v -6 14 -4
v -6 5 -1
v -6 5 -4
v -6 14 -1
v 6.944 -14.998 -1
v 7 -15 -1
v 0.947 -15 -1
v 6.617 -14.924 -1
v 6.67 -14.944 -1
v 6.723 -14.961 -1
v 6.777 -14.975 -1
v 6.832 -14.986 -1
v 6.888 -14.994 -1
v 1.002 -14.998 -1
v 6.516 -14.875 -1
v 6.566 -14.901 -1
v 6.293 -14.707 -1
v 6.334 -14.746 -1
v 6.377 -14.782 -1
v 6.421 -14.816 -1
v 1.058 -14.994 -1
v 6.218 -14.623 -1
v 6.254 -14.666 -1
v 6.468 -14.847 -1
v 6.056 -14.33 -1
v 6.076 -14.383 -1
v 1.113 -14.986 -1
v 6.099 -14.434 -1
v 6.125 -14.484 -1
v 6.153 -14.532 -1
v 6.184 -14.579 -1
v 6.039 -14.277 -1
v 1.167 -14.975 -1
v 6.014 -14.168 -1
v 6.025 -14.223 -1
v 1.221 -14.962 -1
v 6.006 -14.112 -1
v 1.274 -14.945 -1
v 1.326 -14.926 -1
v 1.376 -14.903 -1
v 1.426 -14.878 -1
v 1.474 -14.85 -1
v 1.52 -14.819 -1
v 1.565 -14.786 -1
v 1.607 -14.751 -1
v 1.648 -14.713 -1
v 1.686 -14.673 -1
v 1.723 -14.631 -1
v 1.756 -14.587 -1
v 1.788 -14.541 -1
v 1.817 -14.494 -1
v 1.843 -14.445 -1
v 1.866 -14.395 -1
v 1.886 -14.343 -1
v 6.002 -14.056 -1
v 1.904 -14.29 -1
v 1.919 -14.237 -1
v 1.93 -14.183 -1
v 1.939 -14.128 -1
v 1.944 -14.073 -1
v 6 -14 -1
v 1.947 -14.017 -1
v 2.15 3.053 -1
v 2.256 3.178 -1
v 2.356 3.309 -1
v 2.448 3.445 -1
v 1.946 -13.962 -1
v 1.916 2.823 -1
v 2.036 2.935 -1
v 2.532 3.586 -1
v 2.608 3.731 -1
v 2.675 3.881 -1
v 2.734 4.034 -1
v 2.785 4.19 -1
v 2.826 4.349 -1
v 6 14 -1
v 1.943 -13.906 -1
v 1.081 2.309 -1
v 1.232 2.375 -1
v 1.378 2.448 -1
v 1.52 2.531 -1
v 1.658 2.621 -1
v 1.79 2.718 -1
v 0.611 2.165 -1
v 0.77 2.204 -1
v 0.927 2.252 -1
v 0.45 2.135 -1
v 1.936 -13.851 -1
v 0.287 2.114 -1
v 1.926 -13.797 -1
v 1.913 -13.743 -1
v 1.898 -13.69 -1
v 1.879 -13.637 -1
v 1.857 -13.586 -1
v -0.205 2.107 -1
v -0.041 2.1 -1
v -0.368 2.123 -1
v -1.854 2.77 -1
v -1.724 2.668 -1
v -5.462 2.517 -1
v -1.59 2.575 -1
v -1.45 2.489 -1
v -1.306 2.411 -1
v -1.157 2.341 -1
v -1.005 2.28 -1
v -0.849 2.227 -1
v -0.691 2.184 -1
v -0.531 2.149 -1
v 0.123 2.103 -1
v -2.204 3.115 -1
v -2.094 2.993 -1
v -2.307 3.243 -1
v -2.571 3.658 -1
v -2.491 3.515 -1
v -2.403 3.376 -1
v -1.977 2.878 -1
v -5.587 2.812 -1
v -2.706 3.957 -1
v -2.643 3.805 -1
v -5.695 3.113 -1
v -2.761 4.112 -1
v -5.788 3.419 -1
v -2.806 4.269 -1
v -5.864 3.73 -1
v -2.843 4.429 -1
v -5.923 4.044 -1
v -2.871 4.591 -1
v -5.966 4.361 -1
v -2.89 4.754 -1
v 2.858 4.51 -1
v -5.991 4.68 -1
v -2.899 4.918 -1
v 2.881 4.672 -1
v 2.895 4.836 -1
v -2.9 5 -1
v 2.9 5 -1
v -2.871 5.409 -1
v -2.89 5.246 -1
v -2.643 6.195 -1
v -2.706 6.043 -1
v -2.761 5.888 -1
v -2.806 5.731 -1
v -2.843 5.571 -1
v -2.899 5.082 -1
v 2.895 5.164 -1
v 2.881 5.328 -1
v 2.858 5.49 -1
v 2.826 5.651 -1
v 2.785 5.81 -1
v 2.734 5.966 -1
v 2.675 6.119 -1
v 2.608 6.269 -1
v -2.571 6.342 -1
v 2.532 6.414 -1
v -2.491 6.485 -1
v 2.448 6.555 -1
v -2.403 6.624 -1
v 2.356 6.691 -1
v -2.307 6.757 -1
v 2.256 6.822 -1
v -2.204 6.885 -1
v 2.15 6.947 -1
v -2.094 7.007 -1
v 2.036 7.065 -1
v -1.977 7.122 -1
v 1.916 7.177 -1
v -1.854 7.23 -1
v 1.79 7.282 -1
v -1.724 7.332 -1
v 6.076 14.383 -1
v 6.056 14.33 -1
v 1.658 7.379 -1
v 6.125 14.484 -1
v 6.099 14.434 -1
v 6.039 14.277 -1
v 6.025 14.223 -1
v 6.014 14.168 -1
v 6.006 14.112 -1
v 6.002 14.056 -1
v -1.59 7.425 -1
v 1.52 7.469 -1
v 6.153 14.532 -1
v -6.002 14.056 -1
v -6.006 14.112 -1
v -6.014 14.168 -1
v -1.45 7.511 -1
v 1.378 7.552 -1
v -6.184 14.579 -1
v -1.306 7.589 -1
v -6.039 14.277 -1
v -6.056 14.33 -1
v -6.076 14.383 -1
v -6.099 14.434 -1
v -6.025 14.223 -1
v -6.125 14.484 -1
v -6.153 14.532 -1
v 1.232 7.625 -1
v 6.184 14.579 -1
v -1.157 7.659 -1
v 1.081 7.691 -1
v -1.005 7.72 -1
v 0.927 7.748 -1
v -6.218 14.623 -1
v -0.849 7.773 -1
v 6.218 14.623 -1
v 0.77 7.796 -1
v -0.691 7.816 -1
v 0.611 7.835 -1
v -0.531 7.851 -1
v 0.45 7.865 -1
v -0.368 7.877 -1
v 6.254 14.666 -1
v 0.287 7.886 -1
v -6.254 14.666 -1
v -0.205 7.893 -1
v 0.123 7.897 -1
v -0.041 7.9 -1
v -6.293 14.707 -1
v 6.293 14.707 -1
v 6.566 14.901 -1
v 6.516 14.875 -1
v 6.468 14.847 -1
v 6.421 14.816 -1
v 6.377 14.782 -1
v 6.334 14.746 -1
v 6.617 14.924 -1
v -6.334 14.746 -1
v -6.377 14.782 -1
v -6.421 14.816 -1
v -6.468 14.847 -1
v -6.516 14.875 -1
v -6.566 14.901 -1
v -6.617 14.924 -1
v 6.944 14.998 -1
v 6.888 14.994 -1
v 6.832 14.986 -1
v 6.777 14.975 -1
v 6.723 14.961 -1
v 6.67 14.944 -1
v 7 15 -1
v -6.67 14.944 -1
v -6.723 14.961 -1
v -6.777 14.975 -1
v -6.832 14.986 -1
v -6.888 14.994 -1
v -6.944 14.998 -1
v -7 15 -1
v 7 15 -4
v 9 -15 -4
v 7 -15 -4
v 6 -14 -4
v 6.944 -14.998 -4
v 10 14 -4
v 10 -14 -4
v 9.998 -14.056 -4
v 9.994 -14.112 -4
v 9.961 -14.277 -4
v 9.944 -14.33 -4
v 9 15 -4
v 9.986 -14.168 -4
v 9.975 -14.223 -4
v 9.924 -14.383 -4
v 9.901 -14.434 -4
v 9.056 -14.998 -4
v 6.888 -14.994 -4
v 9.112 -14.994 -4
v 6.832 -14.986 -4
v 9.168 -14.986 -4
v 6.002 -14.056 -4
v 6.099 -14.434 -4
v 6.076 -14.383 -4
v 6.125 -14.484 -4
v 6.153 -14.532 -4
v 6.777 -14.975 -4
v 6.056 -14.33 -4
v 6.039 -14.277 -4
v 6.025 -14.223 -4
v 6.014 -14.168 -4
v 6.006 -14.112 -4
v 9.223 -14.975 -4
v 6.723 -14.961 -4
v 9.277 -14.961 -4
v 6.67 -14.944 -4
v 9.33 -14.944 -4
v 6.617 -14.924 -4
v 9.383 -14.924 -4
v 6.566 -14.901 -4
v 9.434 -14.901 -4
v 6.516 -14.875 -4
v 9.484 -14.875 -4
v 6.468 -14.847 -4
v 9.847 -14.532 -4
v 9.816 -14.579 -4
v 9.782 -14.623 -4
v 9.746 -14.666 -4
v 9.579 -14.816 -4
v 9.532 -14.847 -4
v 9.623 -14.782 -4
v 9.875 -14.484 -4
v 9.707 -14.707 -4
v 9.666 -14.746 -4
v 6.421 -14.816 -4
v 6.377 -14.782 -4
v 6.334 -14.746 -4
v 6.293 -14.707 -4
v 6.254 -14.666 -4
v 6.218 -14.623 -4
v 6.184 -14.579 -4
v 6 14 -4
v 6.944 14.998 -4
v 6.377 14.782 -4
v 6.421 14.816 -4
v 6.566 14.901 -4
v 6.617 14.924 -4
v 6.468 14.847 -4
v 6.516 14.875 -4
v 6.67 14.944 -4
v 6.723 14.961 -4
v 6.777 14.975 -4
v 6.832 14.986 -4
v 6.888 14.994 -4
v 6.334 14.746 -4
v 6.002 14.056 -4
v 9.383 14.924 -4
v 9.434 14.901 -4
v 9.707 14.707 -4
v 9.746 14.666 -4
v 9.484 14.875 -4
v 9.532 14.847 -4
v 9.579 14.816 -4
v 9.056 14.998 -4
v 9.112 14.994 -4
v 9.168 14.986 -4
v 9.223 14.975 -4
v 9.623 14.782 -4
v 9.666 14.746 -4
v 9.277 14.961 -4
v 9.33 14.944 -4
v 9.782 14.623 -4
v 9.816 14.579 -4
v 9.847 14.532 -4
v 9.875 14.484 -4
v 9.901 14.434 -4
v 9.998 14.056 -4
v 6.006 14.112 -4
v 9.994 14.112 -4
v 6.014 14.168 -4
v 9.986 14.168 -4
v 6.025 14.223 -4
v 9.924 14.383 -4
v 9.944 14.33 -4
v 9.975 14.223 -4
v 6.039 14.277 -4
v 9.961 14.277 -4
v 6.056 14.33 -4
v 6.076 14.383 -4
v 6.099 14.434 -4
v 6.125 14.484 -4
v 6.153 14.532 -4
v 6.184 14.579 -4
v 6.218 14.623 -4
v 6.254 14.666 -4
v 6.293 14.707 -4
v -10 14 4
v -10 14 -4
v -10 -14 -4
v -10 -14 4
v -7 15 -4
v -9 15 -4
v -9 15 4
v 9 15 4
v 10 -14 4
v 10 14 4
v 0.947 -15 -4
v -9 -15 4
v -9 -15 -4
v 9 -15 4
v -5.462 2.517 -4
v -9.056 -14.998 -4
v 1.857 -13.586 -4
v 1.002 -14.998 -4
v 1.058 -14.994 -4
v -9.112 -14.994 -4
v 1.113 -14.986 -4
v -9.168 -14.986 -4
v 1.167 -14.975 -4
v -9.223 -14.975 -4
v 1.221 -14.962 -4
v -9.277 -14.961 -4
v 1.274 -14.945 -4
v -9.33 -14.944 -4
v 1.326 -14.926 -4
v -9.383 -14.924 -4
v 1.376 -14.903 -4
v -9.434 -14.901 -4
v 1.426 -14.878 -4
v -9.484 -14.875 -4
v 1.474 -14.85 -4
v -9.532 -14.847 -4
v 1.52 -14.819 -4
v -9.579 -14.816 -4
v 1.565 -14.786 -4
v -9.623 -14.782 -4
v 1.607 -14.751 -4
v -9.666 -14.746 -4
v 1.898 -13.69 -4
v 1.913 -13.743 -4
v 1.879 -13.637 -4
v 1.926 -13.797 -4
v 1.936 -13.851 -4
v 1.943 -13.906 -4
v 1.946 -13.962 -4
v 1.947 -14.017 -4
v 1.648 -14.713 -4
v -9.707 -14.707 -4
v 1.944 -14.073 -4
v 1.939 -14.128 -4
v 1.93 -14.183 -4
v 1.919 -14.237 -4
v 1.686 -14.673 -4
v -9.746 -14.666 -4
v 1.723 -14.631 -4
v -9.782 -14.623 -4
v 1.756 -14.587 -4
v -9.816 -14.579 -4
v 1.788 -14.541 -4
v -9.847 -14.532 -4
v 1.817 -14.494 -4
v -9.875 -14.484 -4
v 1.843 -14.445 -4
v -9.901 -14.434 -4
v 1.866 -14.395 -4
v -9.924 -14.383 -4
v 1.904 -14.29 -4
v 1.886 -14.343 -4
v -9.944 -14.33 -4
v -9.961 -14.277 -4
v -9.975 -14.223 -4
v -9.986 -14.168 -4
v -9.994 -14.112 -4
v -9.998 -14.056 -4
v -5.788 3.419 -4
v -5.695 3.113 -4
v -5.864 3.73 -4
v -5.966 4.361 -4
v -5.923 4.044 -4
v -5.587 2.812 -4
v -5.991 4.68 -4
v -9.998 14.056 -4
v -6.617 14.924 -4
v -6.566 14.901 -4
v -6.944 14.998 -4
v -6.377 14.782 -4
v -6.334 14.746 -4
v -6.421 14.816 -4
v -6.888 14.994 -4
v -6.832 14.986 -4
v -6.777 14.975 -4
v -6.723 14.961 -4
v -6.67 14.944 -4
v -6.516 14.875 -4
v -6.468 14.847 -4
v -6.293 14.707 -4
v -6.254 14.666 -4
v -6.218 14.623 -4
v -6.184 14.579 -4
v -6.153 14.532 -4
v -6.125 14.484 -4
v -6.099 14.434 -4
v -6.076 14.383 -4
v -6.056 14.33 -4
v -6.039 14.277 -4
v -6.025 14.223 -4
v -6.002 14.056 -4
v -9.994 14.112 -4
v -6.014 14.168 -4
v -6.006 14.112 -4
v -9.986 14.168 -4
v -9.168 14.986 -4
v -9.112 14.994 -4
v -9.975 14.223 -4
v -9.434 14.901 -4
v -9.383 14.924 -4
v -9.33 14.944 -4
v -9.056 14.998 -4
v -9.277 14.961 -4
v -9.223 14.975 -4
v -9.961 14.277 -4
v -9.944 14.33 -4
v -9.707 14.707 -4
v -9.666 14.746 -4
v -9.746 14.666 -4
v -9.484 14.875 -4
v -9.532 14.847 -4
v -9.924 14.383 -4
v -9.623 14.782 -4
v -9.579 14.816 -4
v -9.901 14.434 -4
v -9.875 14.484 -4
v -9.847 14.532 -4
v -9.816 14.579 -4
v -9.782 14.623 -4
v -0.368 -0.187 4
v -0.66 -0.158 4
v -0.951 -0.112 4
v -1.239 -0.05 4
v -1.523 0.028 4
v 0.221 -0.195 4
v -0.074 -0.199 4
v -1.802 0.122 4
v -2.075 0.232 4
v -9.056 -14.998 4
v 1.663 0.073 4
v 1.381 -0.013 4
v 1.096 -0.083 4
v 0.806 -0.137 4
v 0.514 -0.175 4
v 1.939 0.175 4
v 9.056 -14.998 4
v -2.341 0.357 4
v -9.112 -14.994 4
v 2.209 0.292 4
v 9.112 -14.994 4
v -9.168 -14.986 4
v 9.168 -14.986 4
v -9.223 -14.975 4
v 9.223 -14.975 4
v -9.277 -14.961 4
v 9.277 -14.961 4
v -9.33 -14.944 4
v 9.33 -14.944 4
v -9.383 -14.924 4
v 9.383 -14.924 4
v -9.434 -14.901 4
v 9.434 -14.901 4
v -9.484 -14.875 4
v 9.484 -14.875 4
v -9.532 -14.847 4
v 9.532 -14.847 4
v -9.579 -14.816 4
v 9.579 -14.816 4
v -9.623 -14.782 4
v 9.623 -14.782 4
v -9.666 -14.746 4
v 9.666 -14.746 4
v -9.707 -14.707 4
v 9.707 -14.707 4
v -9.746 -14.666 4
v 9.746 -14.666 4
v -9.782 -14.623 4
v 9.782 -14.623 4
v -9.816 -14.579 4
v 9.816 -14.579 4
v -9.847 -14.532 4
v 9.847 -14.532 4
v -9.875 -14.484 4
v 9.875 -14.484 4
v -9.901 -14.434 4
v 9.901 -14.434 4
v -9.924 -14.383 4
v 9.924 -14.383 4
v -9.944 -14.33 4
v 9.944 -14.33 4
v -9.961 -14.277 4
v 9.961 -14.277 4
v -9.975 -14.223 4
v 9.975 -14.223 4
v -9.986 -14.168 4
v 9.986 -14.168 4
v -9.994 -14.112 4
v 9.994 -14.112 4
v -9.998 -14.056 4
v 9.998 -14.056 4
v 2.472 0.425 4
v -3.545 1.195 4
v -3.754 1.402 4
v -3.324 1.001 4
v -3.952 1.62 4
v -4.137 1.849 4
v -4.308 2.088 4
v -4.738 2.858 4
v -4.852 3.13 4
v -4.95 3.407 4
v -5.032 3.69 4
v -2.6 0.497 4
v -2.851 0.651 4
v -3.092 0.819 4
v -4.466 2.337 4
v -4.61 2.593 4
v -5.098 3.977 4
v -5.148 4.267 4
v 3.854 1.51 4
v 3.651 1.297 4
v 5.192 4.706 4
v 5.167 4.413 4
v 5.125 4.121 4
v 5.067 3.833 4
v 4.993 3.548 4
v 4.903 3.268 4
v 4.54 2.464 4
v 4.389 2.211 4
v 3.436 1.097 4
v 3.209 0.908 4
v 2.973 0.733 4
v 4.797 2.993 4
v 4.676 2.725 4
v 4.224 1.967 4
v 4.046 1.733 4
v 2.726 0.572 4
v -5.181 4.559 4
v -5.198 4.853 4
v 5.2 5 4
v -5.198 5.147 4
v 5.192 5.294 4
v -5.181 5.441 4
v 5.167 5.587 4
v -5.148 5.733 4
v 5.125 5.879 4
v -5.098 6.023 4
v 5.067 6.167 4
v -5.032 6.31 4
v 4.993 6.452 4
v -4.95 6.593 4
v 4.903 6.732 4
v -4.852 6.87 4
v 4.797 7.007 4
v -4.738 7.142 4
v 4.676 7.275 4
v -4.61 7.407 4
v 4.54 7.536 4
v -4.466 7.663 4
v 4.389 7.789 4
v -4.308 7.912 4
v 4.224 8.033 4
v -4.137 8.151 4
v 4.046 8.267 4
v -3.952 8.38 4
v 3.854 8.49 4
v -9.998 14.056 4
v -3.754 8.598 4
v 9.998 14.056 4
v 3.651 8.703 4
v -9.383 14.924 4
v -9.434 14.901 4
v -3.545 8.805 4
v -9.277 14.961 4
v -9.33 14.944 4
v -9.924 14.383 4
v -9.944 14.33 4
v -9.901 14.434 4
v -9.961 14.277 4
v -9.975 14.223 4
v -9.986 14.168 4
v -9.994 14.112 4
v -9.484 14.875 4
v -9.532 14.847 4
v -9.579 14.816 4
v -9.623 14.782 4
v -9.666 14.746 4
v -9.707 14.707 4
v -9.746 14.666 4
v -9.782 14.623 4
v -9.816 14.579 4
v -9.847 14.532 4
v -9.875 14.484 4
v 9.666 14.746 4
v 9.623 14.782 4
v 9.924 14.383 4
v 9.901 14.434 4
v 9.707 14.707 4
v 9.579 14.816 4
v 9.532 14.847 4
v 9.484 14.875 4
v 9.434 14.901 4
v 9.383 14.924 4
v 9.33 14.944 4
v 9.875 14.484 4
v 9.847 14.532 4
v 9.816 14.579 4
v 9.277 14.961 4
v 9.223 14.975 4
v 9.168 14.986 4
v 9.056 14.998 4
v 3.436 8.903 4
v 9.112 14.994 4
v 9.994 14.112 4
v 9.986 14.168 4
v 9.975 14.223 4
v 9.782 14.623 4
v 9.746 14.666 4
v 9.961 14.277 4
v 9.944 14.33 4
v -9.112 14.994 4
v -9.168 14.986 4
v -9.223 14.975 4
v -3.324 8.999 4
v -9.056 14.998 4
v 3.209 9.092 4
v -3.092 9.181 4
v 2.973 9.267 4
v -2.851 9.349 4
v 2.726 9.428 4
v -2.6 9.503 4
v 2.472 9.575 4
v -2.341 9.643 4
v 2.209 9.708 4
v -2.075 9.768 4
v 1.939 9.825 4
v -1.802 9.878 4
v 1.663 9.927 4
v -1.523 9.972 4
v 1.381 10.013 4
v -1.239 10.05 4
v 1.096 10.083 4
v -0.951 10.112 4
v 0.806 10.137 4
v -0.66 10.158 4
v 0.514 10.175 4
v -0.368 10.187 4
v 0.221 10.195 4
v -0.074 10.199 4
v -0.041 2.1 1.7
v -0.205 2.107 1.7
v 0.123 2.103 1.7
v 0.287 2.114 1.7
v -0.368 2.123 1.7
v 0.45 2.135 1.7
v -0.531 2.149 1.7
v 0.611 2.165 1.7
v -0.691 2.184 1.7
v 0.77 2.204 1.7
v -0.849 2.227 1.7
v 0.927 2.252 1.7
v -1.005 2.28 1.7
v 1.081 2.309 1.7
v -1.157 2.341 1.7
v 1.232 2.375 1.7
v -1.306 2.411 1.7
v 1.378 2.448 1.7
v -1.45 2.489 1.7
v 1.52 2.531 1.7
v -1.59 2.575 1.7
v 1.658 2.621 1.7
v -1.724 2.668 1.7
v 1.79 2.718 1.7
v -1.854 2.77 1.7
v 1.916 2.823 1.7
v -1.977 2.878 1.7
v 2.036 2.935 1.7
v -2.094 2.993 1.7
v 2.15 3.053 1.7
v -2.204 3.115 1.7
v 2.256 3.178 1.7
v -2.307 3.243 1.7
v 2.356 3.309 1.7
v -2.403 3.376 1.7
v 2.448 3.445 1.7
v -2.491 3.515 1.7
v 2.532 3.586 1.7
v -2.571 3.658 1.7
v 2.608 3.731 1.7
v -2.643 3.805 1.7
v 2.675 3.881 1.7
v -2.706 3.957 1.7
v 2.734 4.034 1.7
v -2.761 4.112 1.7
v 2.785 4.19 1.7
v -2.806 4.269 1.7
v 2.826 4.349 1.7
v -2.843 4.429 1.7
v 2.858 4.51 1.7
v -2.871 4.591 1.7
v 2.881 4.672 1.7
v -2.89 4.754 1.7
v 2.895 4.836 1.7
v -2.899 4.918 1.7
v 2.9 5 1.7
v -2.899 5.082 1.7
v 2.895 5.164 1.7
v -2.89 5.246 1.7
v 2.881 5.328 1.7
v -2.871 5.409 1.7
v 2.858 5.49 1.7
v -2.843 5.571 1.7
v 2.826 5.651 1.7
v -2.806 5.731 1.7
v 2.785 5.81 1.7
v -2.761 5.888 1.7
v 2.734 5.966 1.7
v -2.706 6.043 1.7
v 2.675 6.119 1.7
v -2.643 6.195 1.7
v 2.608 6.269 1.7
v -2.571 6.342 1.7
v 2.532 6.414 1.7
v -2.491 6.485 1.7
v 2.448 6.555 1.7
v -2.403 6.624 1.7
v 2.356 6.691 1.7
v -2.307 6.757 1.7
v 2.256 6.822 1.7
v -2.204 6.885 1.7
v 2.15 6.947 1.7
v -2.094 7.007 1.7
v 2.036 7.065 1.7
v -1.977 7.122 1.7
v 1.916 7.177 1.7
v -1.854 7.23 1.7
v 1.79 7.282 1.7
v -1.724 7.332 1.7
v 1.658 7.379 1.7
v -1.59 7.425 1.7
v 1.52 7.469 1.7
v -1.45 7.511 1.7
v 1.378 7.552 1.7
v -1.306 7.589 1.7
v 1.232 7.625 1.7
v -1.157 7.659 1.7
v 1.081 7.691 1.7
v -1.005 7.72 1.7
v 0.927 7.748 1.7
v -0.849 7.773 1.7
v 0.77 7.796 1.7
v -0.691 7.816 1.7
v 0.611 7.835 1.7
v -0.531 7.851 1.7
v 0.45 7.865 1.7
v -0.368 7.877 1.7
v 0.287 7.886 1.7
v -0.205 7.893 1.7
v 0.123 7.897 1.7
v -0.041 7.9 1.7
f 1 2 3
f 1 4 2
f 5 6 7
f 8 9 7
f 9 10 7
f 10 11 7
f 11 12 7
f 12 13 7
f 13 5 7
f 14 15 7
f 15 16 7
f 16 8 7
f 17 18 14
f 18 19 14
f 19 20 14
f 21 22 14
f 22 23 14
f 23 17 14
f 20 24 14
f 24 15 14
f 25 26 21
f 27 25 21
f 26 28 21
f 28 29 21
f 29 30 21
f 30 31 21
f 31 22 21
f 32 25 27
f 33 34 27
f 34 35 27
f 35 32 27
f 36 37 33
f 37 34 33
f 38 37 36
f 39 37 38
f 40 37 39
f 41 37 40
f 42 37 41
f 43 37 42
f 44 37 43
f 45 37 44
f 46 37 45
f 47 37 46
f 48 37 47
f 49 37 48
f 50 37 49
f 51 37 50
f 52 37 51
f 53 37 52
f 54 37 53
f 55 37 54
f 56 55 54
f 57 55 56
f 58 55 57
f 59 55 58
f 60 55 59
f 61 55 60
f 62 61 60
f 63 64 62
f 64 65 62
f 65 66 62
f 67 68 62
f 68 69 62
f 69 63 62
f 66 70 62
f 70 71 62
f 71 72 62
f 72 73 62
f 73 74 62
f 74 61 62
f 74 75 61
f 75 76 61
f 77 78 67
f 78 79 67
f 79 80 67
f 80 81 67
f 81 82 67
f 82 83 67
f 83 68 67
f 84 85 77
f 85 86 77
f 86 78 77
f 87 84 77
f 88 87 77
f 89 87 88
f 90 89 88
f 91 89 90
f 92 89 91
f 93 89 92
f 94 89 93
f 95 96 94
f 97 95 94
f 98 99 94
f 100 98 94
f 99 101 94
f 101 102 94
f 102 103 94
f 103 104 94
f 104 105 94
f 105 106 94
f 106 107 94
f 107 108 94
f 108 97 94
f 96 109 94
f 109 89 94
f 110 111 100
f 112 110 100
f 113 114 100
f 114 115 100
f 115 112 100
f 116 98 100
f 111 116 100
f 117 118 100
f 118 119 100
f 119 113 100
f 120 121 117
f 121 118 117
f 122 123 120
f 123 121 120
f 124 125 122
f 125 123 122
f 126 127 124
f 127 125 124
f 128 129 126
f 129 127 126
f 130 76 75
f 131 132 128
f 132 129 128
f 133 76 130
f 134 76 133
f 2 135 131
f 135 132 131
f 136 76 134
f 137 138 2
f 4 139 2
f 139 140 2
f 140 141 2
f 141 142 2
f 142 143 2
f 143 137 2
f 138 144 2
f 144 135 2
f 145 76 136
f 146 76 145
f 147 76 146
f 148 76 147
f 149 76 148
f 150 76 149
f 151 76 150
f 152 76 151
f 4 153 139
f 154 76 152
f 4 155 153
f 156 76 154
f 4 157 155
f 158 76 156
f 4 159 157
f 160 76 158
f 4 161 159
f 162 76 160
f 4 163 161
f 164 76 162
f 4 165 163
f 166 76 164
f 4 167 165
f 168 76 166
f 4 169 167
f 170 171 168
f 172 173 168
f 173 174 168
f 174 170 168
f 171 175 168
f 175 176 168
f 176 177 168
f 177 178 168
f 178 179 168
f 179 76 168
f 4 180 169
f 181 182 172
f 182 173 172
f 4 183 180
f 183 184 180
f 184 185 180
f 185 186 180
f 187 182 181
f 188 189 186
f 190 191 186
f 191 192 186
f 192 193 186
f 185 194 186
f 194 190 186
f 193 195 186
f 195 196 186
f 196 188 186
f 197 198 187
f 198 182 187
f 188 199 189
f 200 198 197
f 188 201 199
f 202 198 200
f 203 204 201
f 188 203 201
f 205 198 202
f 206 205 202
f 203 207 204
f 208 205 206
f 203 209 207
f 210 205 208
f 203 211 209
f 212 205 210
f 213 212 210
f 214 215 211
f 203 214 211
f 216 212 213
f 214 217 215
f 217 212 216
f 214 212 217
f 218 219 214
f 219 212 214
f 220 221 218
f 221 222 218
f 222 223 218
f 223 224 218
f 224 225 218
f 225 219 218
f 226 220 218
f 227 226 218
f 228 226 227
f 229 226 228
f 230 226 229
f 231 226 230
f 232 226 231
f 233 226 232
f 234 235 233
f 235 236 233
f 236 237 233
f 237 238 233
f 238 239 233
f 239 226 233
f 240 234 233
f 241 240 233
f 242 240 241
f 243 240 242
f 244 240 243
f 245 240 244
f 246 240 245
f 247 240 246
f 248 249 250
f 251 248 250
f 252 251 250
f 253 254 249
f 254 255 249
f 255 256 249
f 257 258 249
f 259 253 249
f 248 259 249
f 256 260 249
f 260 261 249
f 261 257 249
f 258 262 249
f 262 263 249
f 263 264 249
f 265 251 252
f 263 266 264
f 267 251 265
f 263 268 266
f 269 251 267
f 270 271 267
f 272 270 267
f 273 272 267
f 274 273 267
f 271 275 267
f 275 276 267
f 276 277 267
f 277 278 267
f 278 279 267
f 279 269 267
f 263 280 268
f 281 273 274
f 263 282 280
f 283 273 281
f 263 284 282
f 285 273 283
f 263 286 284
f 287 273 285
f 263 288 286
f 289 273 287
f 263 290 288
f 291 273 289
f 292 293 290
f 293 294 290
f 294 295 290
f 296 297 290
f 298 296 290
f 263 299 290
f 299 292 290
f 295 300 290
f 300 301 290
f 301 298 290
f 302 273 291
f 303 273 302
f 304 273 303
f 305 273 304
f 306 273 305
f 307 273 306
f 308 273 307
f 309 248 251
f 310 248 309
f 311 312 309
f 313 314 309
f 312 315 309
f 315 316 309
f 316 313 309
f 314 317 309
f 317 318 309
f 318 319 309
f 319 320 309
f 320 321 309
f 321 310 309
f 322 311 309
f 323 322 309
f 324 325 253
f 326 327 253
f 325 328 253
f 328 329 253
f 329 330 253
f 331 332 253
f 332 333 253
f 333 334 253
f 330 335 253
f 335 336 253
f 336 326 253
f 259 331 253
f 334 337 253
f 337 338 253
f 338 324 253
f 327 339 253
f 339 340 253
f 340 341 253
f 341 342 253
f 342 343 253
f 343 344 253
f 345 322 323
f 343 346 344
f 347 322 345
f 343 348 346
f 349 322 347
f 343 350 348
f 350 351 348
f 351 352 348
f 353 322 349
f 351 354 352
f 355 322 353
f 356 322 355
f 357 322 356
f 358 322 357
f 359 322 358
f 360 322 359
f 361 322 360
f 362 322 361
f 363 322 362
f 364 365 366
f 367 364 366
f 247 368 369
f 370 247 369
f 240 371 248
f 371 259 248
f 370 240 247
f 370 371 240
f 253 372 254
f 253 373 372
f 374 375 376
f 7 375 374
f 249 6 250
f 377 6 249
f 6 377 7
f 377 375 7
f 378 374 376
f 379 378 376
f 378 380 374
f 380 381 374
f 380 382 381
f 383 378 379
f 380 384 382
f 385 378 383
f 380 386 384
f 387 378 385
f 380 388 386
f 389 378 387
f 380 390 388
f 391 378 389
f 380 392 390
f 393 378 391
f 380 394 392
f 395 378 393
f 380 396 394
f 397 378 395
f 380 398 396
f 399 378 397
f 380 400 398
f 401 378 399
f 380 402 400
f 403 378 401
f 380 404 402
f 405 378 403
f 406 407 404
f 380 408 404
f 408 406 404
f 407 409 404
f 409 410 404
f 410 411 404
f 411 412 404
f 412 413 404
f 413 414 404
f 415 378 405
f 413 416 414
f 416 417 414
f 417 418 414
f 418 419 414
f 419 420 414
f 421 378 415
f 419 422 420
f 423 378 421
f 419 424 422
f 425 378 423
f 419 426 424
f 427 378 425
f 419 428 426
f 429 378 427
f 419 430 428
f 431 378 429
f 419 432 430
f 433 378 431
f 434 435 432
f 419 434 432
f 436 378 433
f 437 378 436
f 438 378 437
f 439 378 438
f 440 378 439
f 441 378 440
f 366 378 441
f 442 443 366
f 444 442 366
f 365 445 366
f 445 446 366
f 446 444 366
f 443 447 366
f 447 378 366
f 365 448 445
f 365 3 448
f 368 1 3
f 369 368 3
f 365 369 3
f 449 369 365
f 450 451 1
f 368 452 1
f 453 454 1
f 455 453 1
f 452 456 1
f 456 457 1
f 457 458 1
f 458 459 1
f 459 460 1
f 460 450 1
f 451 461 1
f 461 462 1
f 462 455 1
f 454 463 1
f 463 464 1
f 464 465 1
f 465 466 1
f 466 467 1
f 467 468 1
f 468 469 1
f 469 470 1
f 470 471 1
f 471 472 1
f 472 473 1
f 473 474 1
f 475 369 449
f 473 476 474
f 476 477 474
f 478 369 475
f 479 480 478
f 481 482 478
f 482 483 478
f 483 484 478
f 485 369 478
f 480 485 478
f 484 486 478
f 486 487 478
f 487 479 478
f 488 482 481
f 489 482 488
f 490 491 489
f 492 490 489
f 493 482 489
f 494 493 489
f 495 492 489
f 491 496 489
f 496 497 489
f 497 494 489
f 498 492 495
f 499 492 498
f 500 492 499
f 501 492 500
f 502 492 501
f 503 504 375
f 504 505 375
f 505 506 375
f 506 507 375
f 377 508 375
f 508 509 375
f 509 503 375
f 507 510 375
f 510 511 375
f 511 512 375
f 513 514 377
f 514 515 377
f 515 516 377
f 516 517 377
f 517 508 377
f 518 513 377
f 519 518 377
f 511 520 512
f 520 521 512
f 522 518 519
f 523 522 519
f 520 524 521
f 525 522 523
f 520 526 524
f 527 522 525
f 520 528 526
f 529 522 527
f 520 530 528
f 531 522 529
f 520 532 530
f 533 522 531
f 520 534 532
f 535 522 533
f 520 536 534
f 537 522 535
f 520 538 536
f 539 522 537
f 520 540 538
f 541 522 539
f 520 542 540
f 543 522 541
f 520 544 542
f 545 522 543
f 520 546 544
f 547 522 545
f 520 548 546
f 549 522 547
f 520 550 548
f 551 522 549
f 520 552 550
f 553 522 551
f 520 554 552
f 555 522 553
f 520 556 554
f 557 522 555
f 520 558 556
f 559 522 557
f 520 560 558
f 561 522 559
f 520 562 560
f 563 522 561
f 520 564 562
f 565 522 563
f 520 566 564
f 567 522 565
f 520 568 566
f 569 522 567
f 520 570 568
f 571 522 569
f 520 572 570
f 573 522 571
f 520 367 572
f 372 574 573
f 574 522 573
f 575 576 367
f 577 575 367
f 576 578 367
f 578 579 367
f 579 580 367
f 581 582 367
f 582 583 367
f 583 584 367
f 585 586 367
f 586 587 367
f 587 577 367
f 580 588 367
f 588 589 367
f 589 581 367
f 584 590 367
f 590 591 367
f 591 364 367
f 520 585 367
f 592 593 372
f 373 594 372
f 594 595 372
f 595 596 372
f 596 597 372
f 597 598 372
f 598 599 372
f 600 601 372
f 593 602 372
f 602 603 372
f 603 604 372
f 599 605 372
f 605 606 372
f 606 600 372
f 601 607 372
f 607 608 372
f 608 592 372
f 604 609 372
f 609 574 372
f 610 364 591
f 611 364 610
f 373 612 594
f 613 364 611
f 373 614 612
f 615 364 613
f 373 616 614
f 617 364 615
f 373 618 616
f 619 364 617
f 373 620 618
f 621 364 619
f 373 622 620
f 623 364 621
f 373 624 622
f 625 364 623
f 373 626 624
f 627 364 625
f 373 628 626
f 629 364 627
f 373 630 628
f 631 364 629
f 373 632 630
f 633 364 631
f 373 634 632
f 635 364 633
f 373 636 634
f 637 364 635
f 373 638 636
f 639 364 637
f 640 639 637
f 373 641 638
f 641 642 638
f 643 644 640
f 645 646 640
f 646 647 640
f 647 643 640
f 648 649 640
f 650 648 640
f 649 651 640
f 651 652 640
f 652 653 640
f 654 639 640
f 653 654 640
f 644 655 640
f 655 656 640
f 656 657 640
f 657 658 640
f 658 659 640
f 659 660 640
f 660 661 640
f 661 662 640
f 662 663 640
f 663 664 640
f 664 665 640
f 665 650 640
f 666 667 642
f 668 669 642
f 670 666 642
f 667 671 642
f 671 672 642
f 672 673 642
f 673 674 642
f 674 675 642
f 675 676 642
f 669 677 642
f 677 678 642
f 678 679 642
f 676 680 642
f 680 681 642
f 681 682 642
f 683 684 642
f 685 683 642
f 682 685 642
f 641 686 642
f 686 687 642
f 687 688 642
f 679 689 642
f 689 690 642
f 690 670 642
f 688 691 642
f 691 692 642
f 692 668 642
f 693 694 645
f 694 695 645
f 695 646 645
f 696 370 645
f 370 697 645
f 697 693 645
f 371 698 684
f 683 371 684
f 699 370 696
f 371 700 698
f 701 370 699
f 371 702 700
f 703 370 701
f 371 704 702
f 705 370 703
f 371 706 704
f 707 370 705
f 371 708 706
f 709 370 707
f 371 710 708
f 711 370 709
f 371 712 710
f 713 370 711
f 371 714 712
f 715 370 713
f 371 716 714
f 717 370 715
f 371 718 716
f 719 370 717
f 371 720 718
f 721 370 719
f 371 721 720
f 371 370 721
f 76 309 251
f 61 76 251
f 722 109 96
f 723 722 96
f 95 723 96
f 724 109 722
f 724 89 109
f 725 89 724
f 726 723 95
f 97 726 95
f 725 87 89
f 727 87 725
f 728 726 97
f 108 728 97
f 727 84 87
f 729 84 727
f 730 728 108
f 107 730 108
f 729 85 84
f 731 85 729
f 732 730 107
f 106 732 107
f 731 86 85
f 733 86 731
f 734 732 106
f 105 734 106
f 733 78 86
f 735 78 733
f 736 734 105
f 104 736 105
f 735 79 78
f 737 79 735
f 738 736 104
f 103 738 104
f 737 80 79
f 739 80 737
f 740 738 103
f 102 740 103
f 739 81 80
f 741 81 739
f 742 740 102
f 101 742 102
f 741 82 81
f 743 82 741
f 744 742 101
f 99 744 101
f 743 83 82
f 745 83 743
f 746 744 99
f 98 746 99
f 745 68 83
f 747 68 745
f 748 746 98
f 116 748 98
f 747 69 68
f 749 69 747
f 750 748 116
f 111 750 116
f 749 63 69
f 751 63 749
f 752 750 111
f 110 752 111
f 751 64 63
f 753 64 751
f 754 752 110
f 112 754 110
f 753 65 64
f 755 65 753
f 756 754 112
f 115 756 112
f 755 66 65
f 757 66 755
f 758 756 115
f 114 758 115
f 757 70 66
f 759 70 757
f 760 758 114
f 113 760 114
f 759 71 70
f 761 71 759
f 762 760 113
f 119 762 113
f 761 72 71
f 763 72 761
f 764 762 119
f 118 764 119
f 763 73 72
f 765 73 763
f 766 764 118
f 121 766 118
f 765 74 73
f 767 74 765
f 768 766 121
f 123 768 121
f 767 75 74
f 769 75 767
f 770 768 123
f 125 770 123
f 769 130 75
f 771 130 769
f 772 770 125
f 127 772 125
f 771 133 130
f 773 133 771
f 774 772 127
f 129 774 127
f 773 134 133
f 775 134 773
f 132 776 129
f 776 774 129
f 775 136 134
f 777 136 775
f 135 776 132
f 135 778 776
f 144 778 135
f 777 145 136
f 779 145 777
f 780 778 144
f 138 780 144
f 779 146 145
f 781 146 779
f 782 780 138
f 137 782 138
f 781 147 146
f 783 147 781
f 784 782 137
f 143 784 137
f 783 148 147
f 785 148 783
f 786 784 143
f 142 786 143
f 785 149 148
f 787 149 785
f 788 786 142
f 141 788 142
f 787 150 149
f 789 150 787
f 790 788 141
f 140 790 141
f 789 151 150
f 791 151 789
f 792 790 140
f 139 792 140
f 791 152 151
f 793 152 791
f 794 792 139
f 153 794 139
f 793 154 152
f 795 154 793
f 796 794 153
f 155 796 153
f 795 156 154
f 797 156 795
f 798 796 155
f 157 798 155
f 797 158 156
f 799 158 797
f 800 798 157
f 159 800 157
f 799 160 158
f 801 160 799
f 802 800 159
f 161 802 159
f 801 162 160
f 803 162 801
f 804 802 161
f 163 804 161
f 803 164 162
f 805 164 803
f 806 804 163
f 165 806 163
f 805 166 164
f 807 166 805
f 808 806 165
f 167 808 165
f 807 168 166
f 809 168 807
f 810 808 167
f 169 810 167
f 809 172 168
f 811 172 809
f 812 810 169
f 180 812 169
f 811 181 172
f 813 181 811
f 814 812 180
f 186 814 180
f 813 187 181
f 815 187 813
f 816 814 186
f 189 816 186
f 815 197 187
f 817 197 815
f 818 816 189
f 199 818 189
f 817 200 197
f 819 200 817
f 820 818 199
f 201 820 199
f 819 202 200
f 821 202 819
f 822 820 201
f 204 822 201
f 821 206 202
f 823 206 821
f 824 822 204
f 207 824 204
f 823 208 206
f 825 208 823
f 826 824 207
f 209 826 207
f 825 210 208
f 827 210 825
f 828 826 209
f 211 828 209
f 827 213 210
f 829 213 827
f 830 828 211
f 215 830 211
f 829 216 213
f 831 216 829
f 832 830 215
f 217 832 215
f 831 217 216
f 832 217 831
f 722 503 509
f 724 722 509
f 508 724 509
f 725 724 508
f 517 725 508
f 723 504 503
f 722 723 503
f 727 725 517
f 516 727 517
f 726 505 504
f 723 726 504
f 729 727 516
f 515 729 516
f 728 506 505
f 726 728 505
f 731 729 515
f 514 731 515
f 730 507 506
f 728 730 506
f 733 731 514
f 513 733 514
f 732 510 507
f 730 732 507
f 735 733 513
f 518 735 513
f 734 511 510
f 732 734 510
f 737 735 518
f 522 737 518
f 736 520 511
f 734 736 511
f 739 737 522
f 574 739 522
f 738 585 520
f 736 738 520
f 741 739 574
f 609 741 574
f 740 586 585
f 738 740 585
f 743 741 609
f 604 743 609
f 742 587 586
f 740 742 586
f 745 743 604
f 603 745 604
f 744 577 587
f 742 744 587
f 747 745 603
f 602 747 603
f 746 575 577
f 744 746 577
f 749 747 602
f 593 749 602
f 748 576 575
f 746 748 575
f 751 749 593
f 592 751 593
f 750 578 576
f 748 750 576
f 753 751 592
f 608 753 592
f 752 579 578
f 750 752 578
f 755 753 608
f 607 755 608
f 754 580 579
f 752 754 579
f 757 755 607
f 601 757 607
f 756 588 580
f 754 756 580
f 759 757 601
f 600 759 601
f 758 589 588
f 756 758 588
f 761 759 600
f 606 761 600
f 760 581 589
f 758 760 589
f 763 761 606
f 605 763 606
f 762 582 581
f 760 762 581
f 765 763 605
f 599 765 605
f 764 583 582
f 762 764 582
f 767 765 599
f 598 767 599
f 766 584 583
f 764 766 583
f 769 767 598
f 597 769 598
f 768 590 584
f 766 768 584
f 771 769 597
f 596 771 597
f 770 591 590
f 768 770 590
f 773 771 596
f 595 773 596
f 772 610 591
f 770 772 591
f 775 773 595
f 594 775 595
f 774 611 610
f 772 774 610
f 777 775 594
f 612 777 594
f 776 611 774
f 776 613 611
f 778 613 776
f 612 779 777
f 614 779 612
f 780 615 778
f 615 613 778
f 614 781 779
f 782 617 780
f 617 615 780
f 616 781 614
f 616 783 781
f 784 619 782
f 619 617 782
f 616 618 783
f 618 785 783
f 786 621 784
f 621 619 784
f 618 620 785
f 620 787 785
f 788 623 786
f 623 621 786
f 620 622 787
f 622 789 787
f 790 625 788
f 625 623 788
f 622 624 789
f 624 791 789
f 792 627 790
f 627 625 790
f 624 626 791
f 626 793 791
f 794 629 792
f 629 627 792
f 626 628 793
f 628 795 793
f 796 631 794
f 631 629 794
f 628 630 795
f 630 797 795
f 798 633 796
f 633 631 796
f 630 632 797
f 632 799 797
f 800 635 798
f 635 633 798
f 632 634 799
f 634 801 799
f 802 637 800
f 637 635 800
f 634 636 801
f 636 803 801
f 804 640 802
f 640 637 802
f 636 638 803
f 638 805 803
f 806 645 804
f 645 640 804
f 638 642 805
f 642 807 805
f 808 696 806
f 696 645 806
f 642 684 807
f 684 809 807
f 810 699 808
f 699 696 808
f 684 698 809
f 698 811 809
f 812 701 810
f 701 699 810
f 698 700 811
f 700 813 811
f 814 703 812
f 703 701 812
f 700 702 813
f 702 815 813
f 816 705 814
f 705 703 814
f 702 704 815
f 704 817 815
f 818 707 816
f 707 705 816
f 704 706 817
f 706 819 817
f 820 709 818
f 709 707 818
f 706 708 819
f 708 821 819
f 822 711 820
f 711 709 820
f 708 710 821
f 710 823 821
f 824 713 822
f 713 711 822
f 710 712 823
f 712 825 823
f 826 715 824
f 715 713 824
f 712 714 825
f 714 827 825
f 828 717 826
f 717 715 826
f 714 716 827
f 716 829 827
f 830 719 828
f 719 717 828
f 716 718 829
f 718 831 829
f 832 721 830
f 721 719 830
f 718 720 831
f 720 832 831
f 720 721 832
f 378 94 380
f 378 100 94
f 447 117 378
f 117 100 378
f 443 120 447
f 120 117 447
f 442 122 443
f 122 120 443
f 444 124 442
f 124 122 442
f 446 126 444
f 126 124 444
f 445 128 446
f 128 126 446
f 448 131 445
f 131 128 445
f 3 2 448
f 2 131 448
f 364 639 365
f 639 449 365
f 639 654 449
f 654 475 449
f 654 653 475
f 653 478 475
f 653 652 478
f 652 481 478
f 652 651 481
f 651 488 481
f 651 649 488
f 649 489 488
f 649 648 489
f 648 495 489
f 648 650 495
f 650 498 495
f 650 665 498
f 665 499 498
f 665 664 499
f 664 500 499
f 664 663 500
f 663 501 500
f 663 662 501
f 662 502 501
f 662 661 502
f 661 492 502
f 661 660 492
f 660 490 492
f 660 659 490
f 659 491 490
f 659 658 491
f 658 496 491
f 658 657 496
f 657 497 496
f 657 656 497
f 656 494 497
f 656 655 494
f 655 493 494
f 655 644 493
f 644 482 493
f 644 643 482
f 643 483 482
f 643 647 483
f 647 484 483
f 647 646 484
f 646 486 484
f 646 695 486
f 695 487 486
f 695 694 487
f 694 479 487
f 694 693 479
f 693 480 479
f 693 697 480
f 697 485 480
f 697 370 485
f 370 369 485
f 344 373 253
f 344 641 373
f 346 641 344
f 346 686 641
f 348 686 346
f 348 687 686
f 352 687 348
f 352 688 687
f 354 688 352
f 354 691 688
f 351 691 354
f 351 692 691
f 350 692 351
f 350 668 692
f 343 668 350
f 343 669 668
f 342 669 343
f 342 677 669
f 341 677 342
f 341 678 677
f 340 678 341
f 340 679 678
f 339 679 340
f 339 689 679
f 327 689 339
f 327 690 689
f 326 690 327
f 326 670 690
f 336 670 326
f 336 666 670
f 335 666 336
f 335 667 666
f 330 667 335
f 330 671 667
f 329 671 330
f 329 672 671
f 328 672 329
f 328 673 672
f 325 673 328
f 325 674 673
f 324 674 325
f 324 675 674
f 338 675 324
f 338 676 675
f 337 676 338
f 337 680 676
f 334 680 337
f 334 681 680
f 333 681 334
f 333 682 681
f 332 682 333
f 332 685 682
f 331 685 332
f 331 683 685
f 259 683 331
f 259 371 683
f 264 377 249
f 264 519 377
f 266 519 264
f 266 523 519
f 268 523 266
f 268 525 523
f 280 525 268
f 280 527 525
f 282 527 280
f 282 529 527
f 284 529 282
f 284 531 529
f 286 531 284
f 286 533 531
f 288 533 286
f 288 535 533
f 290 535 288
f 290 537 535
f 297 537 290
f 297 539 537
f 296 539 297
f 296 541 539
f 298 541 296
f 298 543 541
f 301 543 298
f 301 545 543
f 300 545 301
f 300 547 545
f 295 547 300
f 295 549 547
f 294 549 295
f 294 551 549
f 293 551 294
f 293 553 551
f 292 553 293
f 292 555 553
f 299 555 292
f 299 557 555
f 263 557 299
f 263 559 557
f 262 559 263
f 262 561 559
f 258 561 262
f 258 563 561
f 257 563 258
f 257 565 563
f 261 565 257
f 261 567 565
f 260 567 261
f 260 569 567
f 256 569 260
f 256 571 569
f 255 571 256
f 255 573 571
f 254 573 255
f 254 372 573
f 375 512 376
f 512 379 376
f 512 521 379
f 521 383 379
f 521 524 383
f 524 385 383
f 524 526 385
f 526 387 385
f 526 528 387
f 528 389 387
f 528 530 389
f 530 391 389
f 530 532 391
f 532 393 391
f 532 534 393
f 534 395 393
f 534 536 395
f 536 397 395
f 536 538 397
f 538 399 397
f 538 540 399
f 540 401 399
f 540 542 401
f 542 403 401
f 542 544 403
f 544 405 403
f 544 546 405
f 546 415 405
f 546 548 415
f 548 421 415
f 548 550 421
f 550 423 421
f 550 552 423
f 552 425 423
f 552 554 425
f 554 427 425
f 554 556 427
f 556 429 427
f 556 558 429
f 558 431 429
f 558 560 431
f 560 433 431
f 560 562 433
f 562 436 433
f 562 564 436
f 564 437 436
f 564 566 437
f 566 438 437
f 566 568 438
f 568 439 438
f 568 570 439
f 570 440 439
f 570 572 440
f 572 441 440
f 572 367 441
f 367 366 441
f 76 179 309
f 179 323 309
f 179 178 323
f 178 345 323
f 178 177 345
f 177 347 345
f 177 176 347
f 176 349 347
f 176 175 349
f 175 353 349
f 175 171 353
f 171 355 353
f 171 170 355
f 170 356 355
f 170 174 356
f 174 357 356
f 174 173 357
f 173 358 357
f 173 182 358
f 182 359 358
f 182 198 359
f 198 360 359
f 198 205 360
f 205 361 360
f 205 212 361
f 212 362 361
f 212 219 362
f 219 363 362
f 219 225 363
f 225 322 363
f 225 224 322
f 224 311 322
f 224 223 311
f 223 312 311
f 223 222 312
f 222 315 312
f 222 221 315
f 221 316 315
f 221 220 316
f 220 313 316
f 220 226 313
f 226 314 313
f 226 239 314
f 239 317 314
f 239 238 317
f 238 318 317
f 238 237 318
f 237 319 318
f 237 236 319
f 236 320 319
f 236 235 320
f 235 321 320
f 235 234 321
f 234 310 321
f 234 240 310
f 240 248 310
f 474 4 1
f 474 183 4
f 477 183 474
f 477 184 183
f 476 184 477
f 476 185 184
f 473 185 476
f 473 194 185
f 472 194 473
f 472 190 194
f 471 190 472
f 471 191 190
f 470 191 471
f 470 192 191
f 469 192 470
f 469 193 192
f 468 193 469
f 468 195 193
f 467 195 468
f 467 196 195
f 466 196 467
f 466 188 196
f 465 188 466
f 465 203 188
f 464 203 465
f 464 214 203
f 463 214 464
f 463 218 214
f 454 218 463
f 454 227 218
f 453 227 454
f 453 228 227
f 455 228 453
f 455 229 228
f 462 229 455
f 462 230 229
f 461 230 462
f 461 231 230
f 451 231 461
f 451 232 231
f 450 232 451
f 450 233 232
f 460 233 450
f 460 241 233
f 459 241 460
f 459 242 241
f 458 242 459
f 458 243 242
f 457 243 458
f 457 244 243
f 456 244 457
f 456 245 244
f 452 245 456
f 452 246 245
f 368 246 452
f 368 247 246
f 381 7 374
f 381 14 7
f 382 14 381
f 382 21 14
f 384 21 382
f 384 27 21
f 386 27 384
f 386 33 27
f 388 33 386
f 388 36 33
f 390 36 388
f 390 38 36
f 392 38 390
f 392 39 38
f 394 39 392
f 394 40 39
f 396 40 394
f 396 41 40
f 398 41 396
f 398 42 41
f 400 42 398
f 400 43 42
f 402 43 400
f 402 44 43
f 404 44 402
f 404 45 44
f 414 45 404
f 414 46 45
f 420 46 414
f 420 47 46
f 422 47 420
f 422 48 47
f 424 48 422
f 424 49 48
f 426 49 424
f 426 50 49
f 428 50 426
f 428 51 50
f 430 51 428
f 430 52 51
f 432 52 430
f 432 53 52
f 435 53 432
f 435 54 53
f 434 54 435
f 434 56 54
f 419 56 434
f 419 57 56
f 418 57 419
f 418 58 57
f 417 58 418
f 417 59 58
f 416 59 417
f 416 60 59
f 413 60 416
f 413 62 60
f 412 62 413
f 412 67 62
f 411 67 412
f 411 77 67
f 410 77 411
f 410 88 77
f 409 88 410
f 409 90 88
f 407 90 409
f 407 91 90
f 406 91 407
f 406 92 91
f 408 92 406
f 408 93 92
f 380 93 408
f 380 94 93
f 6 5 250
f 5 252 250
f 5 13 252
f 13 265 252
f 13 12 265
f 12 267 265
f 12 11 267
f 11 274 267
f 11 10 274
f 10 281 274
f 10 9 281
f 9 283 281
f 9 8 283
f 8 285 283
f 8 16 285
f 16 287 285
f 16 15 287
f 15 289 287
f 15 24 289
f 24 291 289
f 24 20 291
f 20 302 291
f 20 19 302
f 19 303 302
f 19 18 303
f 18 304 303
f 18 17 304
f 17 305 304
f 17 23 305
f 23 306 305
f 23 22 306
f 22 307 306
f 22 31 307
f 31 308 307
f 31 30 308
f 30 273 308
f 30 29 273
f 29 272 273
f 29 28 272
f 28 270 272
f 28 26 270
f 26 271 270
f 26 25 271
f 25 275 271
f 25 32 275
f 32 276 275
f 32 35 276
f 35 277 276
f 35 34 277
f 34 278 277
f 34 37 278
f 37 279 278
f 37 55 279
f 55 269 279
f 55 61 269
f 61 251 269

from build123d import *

# Parameters (mm, degrees)
SKETCH3_W                                       = 20
SKETCH3_H                                       = 30
BOSS_EXTRUDE1_DEPTH                             = 4
SKETCH4_W                                       = 12
SKETCH4_H                                       = 30
CUT_EXTRUDE1_DEPTH                              = 3
CSK_FOR_M5_FLAT_HEAD_MACHINE_SCREW1_D           = 5.8
CSK_FOR_M5_FLAT_HEAD_MACHINE_SCREW1_CSINK_D     = 10.4
CSK_FOR_M5_FLAT_HEAD_MACHINE_SCREW1_CSINK_ANGLE = 90
BOSS_EXTRUDE2_DEPTH                             = 3
FILLET1_R                                       = 1


with BuildPart() as part:
    # Sketch3 → Boss-Extrude1 (new body, symmetric)
    with BuildSketch(Plane.XY):
        Rectangle(SKETCH3_W, SKETCH3_H)
    extrude(amount=BOSS_EXTRUDE1_DEPTH, both=True)

    # Sketch4 → Cut-Extrude1 (cut)
    with BuildSketch(Plane(origin=(0, 0, -4), x_dir=(-1, 0, 0), z_dir=(0, 0, -1))):
        Rectangle(SKETCH4_W, SKETCH4_H)
    extrude(amount=-CUT_EXTRUDE1_DEPTH, mode=Mode.SUBTRACT)

    # CSK for M5 Flat Head Machine Screw1 (through all)
    with Locations(Plane(origin=(0, 5, 4), x_dir=(1, 0, 0), z_dir=(0, 0, 1))):
        with Locations((0, 0)):
            CounterSinkHole(CSK_FOR_M5_FLAT_HEAD_MACHINE_SCREW1_D / 2, CSK_FOR_M5_FLAT_HEAD_MACHINE_SCREW1_CSINK_D / 2, counter_sink_angle=CSK_FOR_M5_FLAT_HEAD_MACHINE_SCREW1_CSINK_ANGLE)

    # Sketch7 → Boss-Extrude2 (add)
    with BuildSketch(Plane(origin=(0, 0, -1), x_dir=(-1, 0, 0), z_dir=(0, 0, -1))):
        with BuildLine():
            Line((5.462217277, 2.51722284), (-2.5, -15))
            Line((-2.5, -15), (6, -15))
            Line((6, -15), (6, 5))
            ThreePointArc((6, 5), (5.864013287, 3.729823567), (5.462217277, 2.51722284))
        make_face()
    extrude(amount=BOSS_EXTRUDE2_DEPTH)

    # Fillet1
    fillet1_edges = [part.edges().sort_by_distance(p)[0] for p in [
        (6, -15, -2.5),
        (6, 15, -2.5),
        (-6, 15, -2.5),
        (2.5, -15, -2.5),
        (-10, 15, 0),
        (10, 15, 0),
        (10, -15, 0),
        (-10, -15, 0),
    ]]
    fillet(fillet1_edges, radius=FILLET1_R)


solid = part.part
